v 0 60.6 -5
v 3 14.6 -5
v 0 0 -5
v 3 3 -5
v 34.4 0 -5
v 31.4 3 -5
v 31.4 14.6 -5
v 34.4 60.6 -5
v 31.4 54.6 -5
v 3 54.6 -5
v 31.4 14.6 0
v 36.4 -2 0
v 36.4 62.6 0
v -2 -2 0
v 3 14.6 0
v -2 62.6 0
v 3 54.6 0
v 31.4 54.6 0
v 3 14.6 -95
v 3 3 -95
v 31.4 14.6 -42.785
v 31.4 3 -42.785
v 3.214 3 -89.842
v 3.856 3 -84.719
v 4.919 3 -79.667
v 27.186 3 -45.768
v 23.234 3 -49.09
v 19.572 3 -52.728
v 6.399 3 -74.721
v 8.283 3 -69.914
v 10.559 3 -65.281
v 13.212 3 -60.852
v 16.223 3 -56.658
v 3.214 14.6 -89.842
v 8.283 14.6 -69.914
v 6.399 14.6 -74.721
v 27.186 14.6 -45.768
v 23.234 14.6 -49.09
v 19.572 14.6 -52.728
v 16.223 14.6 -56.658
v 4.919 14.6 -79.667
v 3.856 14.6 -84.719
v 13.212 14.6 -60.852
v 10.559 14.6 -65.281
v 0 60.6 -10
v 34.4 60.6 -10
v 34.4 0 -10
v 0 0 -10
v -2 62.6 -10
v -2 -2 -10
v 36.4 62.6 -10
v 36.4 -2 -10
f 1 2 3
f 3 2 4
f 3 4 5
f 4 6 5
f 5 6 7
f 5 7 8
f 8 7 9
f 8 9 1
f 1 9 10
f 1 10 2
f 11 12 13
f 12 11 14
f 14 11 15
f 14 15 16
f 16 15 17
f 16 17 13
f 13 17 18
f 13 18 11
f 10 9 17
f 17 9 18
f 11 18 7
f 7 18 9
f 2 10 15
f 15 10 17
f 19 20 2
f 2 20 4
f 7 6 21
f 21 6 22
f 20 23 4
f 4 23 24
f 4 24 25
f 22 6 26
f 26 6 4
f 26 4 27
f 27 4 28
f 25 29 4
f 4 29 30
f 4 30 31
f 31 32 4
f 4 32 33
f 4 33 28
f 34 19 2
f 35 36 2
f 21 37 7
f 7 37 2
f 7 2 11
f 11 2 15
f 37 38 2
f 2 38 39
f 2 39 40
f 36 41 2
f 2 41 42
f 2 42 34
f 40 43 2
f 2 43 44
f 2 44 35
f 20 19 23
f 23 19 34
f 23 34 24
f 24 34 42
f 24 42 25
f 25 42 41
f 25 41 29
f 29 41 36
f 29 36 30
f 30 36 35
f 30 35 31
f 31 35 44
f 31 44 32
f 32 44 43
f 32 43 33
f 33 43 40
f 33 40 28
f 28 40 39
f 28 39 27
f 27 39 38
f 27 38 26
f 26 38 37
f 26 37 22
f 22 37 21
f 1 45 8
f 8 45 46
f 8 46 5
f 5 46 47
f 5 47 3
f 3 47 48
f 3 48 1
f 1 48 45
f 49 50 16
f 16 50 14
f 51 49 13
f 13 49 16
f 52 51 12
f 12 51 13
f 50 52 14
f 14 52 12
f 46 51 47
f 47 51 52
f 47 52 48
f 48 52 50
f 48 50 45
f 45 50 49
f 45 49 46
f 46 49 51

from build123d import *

# Parameters (mm, degrees)
SKETCH_8_W          = 34.4
SKETCH_8_H          = 60.6
SKETCH_8_W_2        = 28.4
SKETCH_8_H_2        = 51.6
EXTRUDE_4_DEPTH     = 5
SKETCH_9_W          = 28.4
SKETCH_9_H          = 11.6
EXTRUDE_5_DEPTH     = 95
SKETCH_10_R         = 62.2
CUT_EXTRUDE_3_DEPTH = 100
SKETCH_13_W         = 38.4
SKETCH_13_H         = 64.6
SKETCH_13_W_2       = 34.4
SKETCH_13_H_2       = 60.6
EXTRUDE_7_DEPTH     = 10


with BuildPart() as part:
    # 스케치8 → 보스-돌출4 (new body)
    with BuildSketch(Plane.XY):
        with Locations((17.2, 30.3)):
            Rectangle(SKETCH_8_W, SKETCH_8_H)
        with Locations((17.2, 28.8)):
            Rectangle(SKETCH_8_W_2, SKETCH_8_H_2, mode=Mode.SUBTRACT)
    extrude(amount=-EXTRUDE_4_DEPTH)

    # 스케치9 → 보스-돌출5 (add)
    with BuildSketch(Plane.XY):
        with Locations((17.2, 8.8)):
            Rectangle(SKETCH_9_W, SKETCH_9_H)
    extrude(amount=-EXTRUDE_5_DEPTH)

    # 스케치10 → 컷-돌출3 (cut)
    with BuildSketch(Plane(origin=(0, 14.6, 0), x_dir=(1, 0, 0), z_dir=(0, 1, 0))):
        with Locations((65.2, 95)):
            Circle(SKETCH_10_R)
    extrude(amount=-CUT_EXTRUDE_3_DEPTH, mode=Mode.SUBTRACT)

    # 스케치13 → 보스-돌출7 (add)
    with BuildSketch(Plane.XY):
        with Locations((17.2, 30.3)):
            Rectangle(SKETCH_13_W, SKETCH_13_H)
        with Locations((17.2, 30.3)):
            Rectangle(SKETCH_13_W_2, SKETCH_13_H_2, mode=Mode.SUBTRACT)
    extrude(amount=-EXTRUDE_7_DEPTH)


solid = part.part
